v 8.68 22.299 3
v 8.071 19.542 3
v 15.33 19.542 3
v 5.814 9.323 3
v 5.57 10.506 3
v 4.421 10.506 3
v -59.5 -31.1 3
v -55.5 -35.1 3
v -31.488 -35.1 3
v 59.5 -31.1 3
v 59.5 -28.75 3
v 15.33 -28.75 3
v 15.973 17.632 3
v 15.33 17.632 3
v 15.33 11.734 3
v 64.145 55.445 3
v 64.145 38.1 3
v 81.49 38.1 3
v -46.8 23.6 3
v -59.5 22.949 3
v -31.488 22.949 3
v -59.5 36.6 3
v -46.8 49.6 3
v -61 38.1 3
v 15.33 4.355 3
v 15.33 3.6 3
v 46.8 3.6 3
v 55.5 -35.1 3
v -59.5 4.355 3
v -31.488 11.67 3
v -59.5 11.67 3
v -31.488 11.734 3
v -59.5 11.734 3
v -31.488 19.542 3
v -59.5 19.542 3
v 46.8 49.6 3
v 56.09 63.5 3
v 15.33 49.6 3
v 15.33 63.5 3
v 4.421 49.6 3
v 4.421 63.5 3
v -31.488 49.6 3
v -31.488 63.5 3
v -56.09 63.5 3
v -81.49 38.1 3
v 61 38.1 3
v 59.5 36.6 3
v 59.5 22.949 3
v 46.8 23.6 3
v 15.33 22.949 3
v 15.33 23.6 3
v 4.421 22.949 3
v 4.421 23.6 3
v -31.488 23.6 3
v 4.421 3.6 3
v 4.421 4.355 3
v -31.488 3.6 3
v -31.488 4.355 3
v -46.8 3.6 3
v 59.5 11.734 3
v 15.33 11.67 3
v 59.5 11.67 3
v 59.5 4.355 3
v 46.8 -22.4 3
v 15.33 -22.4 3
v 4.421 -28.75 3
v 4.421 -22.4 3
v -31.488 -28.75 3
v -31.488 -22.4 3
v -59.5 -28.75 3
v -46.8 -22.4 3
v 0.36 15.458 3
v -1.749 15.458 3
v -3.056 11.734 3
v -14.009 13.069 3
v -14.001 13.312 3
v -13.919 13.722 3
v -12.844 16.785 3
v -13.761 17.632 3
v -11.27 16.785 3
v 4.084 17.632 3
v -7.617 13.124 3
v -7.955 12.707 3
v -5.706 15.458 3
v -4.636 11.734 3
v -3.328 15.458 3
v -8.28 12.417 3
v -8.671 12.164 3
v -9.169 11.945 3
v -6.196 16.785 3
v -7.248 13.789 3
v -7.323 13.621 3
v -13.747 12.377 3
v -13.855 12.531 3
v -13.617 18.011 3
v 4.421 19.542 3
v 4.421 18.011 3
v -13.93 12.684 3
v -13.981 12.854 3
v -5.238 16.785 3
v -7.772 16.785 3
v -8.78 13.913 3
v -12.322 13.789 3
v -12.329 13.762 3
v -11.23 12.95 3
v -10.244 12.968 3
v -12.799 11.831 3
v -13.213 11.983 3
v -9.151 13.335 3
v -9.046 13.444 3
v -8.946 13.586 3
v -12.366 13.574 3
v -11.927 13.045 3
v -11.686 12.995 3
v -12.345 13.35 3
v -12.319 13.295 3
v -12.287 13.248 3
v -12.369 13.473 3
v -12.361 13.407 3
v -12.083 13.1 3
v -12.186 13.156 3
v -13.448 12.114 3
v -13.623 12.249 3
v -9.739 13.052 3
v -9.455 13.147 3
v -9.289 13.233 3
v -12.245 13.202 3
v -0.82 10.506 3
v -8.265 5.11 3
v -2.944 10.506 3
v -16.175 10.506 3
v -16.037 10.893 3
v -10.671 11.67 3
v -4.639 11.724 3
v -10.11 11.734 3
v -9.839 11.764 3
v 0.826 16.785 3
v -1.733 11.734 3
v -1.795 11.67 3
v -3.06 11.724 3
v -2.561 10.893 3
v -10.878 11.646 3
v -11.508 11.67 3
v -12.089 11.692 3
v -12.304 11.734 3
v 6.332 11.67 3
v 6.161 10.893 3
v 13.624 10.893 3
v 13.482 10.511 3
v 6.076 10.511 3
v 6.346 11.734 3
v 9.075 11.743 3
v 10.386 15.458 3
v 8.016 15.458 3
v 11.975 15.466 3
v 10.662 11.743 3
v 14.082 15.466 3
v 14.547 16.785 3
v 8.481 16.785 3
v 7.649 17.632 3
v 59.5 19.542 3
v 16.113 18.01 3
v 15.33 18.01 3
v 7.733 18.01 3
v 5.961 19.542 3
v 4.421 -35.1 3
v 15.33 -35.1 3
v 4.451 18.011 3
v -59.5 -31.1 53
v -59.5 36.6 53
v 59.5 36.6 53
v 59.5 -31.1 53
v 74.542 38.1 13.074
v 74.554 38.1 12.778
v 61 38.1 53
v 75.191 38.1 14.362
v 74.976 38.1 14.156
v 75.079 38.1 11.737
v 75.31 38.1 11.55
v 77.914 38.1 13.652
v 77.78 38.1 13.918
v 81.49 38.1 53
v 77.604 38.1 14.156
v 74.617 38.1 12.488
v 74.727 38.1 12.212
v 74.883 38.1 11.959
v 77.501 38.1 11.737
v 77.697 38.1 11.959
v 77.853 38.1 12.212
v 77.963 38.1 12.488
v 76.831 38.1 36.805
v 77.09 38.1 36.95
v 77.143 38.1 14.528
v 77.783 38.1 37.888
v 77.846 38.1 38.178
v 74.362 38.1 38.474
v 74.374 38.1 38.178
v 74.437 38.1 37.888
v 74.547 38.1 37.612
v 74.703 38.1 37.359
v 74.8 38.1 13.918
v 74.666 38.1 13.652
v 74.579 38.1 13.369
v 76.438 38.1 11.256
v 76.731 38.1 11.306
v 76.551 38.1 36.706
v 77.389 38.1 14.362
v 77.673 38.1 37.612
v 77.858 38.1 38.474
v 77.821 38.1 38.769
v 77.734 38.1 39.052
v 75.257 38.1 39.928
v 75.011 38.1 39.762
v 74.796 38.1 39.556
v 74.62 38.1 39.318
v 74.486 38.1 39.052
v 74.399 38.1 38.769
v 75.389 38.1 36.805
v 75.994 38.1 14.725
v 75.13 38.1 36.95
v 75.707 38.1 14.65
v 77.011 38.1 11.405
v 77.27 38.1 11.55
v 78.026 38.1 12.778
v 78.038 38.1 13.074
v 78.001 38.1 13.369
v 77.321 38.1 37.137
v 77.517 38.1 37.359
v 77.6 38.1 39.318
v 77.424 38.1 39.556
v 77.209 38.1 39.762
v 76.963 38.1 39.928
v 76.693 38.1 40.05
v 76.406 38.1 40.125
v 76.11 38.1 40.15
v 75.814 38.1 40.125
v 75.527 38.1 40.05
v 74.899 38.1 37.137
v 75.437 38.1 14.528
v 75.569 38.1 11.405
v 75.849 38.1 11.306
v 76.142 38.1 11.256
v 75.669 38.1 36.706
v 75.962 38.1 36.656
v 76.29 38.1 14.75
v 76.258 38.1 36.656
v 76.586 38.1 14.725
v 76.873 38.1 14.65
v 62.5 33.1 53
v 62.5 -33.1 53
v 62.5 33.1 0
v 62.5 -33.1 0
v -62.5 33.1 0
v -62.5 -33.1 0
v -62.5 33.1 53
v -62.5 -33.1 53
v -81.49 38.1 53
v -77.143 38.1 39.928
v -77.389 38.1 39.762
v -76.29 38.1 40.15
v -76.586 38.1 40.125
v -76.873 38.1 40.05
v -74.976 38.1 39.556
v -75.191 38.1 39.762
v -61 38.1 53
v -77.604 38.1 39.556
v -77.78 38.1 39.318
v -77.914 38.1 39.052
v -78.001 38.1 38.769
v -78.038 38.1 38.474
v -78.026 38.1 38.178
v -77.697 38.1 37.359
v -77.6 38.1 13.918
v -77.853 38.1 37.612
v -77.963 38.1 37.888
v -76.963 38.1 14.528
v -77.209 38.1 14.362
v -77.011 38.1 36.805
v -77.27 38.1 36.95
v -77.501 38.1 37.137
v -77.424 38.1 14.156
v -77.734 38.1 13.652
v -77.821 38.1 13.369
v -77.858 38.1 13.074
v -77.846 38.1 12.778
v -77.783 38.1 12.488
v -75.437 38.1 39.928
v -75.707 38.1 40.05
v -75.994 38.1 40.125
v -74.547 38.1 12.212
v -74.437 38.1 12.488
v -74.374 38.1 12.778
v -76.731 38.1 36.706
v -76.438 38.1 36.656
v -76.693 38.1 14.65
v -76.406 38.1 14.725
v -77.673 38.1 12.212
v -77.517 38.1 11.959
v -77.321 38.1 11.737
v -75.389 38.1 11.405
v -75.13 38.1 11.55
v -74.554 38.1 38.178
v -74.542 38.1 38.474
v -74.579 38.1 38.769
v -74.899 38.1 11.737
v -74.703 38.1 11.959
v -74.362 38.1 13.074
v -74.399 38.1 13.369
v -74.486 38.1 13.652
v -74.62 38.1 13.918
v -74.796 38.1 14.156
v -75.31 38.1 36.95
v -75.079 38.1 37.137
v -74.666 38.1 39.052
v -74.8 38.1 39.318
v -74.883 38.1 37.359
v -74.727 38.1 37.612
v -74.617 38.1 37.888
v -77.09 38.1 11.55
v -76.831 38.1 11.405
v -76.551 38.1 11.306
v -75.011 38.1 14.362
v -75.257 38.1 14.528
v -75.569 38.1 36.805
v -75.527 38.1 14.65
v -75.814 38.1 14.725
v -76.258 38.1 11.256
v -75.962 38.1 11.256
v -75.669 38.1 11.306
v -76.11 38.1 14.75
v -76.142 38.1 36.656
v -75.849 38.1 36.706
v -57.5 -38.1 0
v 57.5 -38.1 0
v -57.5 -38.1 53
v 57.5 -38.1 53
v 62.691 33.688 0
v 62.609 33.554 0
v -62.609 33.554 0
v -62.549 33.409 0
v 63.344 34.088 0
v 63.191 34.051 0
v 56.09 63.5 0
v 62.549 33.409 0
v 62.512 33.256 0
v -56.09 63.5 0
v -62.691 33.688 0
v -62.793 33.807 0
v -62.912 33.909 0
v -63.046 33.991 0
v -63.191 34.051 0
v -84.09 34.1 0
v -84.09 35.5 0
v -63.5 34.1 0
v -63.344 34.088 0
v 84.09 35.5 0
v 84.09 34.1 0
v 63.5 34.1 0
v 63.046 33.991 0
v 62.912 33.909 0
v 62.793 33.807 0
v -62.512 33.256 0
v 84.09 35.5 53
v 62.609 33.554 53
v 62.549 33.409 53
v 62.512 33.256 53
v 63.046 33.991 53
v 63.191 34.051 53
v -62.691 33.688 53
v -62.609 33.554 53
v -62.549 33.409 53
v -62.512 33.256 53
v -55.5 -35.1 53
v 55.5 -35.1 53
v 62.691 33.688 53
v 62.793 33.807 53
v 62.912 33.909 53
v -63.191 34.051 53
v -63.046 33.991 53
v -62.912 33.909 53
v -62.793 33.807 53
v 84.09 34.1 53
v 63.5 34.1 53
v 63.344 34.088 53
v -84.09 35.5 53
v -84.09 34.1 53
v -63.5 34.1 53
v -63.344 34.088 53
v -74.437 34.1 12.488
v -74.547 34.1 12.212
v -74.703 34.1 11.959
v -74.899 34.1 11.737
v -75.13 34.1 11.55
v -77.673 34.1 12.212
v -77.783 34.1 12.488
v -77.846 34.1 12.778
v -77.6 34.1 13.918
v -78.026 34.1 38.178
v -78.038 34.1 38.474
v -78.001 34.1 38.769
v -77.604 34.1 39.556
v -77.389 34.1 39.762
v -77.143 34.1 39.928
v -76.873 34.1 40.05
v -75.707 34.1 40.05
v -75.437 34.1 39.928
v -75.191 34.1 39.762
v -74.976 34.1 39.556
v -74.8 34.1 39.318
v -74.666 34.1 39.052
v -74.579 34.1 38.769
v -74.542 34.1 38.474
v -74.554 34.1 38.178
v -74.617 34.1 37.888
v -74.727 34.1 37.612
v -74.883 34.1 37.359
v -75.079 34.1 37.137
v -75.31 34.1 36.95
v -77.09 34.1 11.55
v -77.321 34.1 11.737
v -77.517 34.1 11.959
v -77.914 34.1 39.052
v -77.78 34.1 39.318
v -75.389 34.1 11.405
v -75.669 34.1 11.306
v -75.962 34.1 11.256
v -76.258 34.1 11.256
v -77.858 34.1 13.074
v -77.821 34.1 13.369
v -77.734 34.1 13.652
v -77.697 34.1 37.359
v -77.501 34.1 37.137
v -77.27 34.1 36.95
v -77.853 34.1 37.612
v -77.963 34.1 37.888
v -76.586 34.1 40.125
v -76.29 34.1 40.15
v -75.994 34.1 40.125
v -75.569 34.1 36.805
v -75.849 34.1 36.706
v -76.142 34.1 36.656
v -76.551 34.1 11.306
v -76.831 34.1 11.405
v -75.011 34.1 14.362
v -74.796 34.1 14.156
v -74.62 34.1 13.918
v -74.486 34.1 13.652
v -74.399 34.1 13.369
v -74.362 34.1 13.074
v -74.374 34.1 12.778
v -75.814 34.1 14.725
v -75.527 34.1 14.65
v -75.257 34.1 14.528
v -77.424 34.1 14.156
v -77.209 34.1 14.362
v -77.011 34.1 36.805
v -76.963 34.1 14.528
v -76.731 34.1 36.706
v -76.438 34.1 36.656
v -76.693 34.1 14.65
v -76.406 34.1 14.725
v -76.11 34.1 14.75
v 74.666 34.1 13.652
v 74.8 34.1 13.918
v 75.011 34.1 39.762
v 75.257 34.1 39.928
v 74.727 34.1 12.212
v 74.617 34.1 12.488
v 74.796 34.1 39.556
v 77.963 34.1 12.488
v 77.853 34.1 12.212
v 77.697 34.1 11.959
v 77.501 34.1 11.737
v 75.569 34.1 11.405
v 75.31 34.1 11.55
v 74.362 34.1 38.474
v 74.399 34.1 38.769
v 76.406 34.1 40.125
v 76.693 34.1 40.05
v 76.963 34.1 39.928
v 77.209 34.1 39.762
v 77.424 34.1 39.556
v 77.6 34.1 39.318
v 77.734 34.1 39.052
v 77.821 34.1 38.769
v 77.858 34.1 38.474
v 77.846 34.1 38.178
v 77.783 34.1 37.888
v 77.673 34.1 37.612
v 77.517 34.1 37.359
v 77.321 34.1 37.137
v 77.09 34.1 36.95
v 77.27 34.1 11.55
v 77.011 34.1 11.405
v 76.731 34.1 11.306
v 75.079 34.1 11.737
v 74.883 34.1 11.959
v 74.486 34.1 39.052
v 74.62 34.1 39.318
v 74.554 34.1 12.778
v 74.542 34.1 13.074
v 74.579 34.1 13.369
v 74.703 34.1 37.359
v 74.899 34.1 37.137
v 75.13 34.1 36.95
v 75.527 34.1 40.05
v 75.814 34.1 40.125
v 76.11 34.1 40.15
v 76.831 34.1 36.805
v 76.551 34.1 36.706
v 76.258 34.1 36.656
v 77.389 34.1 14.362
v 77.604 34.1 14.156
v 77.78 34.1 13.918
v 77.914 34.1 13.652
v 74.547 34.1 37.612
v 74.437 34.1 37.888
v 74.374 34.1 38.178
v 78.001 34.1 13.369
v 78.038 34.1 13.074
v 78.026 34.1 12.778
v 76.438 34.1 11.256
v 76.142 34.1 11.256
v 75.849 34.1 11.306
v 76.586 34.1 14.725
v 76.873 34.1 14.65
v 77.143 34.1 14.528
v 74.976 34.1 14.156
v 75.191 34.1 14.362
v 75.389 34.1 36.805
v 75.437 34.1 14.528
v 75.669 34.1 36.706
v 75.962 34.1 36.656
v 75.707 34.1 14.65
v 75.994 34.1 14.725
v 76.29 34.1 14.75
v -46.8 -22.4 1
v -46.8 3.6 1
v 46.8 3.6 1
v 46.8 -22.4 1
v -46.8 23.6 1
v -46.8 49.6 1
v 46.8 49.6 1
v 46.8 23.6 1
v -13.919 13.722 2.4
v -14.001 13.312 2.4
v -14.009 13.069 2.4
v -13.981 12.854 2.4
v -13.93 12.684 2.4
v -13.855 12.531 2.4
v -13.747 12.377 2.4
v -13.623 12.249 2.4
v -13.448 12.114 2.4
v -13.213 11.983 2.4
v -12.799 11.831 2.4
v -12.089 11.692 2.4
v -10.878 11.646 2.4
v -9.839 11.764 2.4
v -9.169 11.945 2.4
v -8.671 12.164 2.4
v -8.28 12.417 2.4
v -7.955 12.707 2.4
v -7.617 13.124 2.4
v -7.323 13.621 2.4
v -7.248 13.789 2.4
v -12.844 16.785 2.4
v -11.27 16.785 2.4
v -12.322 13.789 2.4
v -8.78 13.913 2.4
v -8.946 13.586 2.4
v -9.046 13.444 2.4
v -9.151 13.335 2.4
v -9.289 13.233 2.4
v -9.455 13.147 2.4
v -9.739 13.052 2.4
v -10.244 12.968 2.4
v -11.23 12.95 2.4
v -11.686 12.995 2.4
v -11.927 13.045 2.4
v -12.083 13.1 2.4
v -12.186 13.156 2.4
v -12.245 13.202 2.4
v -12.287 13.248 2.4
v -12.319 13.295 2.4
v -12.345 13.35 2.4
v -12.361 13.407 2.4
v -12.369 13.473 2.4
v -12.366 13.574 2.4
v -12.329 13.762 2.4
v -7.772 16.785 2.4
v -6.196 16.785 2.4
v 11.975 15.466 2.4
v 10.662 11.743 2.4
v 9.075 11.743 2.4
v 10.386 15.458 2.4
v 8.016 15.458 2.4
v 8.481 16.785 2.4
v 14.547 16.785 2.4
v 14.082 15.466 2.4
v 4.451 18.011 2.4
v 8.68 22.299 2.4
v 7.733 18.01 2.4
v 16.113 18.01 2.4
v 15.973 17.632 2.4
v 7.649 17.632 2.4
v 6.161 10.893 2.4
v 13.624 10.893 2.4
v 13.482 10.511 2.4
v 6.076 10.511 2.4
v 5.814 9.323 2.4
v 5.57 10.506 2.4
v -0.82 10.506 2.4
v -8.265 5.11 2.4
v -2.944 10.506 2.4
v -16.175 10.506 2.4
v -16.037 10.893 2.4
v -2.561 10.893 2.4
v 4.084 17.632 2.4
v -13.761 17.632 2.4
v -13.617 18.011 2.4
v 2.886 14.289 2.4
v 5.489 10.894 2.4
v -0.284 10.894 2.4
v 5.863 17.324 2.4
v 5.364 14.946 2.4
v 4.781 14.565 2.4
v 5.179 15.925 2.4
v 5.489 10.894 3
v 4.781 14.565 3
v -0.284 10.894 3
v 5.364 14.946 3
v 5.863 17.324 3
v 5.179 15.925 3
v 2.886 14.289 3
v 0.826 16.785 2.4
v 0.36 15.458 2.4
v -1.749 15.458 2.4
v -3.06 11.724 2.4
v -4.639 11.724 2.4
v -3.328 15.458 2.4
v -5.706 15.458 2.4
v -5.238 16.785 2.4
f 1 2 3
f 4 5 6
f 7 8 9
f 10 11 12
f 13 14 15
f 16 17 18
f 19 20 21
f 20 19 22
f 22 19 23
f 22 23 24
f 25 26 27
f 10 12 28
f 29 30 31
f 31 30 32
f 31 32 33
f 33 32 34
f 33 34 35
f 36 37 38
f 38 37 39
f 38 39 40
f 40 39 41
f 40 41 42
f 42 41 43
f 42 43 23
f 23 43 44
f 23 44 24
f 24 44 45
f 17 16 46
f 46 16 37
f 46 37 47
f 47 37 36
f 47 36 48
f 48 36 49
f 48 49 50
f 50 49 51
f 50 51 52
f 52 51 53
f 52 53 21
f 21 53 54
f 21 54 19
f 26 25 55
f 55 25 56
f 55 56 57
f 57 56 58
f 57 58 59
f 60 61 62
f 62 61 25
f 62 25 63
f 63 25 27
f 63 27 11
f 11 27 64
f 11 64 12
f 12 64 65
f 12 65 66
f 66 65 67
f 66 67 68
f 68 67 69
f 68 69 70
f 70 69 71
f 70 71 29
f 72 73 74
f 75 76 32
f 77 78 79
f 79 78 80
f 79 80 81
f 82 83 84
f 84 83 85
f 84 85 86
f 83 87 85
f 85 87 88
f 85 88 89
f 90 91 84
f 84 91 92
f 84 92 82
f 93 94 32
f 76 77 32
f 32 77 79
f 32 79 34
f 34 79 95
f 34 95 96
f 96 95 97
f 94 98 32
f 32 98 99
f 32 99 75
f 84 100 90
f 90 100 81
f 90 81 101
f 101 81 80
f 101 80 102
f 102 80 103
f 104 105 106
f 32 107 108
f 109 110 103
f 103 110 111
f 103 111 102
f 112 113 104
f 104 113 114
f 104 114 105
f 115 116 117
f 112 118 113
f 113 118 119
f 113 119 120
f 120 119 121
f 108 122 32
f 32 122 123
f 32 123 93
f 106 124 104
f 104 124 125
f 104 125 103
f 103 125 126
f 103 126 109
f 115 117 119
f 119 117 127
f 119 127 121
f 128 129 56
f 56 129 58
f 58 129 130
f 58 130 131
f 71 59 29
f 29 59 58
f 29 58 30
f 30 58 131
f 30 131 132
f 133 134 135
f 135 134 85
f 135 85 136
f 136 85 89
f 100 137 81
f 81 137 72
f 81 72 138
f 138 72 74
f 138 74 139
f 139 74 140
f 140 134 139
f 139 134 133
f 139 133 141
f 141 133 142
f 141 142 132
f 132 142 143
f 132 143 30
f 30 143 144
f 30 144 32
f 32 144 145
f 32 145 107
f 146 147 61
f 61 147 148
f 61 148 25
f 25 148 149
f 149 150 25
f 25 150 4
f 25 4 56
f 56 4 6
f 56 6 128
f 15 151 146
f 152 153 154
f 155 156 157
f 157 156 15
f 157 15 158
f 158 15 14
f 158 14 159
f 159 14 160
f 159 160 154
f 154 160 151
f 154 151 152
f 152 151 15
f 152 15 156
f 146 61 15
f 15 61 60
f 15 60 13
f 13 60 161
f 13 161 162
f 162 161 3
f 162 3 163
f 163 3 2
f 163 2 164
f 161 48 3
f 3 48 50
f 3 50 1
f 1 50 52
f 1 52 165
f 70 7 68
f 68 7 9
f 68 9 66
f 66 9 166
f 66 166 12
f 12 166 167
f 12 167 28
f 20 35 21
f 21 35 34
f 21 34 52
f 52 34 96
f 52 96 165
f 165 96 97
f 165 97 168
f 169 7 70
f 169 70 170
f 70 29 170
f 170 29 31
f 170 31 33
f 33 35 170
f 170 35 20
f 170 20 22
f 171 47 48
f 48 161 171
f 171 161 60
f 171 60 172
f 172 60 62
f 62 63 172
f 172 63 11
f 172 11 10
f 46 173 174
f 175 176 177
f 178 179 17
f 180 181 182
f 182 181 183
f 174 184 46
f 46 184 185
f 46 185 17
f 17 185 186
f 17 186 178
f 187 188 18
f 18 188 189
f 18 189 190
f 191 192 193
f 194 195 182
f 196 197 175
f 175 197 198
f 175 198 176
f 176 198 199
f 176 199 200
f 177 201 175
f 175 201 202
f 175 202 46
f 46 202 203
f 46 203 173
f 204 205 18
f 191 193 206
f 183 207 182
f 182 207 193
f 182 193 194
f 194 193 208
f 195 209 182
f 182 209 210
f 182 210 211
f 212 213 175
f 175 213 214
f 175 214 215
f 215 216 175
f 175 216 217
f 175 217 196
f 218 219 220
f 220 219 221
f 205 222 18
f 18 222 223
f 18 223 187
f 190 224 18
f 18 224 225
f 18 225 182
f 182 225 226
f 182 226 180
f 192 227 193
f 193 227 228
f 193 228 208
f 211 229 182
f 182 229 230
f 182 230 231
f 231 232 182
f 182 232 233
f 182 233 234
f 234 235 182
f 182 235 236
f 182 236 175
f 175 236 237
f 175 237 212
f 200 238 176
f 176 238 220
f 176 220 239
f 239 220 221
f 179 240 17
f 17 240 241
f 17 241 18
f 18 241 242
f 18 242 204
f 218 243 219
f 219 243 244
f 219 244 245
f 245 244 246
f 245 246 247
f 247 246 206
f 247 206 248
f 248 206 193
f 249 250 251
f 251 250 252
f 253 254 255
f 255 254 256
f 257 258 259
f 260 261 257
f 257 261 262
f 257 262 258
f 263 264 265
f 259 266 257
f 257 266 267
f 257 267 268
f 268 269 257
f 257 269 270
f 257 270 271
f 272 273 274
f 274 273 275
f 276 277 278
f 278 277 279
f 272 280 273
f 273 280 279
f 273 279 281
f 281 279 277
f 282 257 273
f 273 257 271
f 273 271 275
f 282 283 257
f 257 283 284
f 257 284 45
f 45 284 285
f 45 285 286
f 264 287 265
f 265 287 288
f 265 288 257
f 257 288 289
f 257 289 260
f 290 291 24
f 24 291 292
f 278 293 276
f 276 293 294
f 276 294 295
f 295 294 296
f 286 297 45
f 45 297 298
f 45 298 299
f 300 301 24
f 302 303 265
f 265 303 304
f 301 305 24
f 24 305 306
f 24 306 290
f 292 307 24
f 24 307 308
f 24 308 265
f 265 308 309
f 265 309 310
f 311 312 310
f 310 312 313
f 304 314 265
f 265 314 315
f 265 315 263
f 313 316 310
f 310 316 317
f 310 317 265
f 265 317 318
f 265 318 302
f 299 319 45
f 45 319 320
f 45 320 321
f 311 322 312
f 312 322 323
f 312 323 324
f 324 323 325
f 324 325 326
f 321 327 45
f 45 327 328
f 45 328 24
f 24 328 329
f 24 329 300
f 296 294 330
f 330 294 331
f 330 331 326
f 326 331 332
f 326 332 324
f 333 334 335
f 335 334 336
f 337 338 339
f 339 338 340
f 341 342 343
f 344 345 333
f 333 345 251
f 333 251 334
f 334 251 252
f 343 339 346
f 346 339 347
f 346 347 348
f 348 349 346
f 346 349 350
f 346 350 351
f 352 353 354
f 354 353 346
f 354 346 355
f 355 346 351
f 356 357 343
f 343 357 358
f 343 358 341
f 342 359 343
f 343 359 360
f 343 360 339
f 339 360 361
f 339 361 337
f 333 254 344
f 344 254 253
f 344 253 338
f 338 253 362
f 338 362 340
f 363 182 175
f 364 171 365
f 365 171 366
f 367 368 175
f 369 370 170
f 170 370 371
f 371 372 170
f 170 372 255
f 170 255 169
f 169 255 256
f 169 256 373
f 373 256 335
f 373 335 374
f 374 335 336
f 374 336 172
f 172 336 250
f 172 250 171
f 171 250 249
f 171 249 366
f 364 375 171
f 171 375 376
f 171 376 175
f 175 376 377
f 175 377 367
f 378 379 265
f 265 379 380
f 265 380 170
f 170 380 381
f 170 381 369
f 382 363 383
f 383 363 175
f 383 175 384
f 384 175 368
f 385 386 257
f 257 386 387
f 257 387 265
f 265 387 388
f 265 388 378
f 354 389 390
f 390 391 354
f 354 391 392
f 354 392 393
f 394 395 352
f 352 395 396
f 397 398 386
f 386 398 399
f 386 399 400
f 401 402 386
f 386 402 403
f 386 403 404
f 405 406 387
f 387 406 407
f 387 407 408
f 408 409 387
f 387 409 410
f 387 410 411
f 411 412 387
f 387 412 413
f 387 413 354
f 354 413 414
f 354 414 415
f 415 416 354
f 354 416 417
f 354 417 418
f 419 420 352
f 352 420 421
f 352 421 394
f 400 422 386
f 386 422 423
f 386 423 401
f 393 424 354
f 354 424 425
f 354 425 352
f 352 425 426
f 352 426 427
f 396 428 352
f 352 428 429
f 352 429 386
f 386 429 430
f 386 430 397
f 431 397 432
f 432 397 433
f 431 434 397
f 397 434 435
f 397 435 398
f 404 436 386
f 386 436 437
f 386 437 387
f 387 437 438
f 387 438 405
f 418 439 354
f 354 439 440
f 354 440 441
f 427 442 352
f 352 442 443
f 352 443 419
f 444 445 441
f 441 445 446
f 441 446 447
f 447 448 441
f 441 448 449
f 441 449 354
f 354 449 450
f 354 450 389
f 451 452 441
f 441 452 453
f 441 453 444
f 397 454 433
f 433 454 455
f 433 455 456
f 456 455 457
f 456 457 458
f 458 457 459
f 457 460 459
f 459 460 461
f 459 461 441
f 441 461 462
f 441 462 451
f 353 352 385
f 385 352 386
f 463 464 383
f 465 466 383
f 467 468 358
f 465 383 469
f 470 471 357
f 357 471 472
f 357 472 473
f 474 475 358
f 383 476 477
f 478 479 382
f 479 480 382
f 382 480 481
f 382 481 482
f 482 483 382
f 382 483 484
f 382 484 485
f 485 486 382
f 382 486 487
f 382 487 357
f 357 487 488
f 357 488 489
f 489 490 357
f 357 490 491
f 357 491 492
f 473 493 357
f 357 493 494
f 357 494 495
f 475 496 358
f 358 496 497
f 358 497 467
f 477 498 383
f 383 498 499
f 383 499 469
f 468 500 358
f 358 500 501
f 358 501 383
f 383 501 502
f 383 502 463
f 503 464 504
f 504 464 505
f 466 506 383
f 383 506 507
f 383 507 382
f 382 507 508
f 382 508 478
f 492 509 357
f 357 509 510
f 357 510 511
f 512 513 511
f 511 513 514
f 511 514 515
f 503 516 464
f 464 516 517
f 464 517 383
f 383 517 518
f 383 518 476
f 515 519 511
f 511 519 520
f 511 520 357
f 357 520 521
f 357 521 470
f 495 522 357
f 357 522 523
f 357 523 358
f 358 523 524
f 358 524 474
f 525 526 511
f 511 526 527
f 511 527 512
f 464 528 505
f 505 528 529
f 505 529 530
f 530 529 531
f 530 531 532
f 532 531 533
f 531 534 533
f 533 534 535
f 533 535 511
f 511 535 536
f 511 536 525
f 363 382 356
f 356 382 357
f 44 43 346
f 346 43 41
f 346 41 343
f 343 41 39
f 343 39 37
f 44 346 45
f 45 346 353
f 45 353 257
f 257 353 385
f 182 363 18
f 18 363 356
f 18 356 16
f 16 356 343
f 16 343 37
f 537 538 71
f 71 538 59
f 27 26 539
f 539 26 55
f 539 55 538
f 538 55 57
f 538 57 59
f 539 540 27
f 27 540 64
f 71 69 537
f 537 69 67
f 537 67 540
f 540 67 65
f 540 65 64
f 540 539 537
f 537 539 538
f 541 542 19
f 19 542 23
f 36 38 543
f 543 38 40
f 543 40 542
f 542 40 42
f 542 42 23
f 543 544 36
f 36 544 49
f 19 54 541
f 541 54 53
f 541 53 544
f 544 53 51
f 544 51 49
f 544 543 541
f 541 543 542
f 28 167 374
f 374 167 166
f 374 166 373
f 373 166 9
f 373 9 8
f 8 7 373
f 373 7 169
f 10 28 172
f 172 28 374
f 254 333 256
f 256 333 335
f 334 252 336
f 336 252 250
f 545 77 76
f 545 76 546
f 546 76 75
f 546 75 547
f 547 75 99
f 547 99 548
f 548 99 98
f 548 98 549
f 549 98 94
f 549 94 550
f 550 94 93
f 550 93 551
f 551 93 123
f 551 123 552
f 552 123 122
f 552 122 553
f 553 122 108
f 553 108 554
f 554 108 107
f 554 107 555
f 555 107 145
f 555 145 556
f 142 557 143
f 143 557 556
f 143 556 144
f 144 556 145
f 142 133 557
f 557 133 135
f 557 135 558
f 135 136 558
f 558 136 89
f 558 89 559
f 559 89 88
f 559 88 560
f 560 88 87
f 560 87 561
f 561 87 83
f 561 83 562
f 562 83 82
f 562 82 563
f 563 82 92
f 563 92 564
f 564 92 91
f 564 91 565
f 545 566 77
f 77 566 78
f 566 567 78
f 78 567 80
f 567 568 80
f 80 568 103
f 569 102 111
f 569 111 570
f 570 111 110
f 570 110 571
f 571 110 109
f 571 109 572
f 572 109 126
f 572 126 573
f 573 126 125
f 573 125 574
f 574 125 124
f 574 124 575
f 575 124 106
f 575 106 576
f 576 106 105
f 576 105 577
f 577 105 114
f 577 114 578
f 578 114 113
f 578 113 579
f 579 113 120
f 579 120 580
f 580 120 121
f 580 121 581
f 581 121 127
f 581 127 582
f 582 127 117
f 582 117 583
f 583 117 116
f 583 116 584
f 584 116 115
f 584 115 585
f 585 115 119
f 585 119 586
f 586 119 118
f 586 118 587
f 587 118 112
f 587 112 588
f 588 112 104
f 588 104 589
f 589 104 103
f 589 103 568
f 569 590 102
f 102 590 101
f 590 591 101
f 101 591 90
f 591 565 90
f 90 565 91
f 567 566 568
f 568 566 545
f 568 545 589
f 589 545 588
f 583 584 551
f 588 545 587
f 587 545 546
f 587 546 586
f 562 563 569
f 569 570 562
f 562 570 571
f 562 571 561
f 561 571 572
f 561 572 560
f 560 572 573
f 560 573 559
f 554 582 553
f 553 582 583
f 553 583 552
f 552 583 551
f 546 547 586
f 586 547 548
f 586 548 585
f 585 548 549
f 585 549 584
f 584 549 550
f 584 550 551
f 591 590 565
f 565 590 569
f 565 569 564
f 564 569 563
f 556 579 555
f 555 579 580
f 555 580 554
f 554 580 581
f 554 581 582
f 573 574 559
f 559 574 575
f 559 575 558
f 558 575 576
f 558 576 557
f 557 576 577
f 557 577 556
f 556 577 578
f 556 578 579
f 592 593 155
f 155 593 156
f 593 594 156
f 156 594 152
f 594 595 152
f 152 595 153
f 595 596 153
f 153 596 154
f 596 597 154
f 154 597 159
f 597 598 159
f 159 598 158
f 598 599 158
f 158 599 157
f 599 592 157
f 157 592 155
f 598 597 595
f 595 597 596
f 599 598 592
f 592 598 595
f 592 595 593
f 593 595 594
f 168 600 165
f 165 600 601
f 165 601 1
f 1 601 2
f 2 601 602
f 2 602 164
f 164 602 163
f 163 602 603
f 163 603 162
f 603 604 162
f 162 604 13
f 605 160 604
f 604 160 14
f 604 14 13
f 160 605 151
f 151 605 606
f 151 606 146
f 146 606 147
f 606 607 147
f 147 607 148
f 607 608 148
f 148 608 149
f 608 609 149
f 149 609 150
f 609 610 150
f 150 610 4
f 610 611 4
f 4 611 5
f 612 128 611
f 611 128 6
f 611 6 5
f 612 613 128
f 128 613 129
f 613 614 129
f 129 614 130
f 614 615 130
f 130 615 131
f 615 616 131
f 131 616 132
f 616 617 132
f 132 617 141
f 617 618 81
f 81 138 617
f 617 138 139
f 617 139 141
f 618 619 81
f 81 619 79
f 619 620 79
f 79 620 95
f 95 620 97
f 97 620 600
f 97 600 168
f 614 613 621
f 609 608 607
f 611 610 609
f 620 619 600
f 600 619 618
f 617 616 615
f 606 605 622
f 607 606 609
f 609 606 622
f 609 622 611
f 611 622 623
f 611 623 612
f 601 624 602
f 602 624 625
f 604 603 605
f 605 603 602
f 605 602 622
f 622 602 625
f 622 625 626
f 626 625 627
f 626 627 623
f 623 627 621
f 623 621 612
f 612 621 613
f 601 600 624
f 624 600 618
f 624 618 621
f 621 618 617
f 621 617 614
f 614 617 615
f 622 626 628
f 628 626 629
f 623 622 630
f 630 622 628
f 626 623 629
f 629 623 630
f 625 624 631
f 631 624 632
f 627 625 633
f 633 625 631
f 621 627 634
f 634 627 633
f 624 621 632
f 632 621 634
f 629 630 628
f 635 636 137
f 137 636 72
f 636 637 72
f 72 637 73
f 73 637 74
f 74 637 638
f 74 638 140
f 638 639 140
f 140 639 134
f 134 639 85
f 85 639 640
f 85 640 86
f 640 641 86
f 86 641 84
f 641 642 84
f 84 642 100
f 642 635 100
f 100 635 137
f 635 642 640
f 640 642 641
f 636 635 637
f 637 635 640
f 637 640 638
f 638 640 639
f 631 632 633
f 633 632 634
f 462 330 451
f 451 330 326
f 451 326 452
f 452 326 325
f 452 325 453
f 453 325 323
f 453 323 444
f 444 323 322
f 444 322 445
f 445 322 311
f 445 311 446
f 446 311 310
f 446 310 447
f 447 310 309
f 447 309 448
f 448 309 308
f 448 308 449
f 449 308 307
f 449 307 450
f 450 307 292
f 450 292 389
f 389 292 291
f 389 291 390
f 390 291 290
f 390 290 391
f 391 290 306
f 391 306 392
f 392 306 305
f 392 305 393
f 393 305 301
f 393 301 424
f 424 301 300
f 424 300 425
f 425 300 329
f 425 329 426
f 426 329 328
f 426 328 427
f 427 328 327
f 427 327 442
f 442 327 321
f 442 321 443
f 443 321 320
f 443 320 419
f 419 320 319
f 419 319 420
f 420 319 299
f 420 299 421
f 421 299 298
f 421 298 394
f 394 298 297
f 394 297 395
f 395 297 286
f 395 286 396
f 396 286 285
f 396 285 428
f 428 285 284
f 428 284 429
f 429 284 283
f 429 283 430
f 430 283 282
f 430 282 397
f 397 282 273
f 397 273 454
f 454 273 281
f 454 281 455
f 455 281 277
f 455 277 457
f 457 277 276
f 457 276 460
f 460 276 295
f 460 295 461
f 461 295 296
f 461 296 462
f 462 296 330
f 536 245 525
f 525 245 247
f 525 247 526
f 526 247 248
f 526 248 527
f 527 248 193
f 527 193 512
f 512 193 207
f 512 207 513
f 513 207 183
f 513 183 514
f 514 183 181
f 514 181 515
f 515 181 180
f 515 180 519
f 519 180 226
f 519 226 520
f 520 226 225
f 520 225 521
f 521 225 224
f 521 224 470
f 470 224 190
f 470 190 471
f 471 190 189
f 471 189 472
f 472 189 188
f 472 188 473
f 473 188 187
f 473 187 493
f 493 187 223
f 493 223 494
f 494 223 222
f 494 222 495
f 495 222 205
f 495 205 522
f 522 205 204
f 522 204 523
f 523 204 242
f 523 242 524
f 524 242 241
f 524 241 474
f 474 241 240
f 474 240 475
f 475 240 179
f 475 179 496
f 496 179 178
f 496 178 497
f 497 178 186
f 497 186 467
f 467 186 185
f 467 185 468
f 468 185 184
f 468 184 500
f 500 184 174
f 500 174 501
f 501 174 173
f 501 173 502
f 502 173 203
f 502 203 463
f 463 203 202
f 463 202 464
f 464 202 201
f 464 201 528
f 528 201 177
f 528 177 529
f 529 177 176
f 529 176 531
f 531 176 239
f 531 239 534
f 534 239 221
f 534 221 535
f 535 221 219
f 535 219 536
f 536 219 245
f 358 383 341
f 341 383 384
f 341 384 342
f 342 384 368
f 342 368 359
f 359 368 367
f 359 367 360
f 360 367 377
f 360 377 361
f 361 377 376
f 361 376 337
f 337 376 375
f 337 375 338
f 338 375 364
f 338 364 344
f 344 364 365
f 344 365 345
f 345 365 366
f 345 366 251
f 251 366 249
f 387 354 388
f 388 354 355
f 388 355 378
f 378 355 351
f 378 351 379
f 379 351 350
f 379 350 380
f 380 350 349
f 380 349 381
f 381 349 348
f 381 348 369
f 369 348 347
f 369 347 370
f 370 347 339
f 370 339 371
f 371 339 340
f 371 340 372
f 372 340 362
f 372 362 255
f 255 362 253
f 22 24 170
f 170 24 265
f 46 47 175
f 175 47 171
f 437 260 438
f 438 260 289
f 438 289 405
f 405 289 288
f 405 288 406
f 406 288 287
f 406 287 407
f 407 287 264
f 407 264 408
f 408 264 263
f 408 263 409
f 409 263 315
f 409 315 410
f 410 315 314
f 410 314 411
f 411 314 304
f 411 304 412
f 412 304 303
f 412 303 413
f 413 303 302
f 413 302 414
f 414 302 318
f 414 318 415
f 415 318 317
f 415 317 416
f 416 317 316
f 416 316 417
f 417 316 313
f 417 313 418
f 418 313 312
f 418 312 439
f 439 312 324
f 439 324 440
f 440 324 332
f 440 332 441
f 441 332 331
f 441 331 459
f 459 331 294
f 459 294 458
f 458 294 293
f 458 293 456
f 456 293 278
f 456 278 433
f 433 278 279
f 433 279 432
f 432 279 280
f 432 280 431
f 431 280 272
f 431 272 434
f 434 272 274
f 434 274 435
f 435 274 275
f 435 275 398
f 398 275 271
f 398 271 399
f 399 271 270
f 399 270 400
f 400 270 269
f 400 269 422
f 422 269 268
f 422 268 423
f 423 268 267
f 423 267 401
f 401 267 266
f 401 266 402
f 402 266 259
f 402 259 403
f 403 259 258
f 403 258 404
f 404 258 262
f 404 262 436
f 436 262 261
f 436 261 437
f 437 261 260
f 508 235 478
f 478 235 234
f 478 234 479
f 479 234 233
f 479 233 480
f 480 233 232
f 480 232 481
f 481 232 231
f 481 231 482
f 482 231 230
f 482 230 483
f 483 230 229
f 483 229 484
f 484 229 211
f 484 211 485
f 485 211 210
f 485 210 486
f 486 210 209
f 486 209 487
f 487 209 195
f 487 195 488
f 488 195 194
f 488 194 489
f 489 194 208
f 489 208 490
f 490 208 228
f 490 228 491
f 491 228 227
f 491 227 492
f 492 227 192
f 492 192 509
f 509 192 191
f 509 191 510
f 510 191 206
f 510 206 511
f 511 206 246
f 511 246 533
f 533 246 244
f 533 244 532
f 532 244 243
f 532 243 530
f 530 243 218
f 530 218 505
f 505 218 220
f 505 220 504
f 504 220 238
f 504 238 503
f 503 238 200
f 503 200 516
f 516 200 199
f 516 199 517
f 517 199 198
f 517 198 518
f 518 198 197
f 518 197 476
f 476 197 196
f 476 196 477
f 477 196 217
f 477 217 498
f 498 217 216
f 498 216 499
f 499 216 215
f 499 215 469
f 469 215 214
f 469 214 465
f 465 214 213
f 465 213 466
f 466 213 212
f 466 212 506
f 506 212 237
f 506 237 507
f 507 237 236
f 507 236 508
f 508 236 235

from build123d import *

# Parameters (mm, degrees)
SKETCH1_W           = 125
SKETCH1_H           = 76.2
BOSS_EXTRUDE1_DEPTH = 3
SKETCH2_W           = 3
SKETCH2_H           = 76.2
BOSS_EXTRUDE2_DEPTH = 50
SKETCH4_W           = 53
SKETCH4_H           = 4
BOSS_EXTRUDE4_DEPTH = 21.59
SKETCH5_W           = 53
SKETCH5_H           = 4
BOSS_EXTRUDE5_DEPTH = 21.59
SKETCH6_W           = 168.18
SKETCH6_H           = 25.4
BOSS_EXTRUDE6_DEPTH = 3
CHAMFER1_SIZE       = 28
SKETCH7_W           = 93.6
SKETCH7_H           = 26
CUT_EXTRUDE1_DEPTH  = 2
SKETCH9_W           = 119
SKETCH9_H           = 3
BOSS_EXTRUDE7_DEPTH = 50
CHAMFER2_SIZE       = 4
CHAMFER3_SIZE       = 5
CUT_EXTRUDE2_START  = -0.6
CUT_EXTRUDE2_DEPTH  = 0.6
SKETCH11_R          = 1.75
CUT_EXTRUDE3_DEPTH  = 5
FILLET1_R           = 1
CHAMFER4_SIZE       = 1.5
SKETCH13_R          = 1.75
CUT_EXTRUDE4_DEPTH  = 10


# Read off the part's stored shape, not the designer's step: Cut-Extrude2
with BuildPart() as part:
    # Sketch1 → Boss-Extrude1 (new body)
    with BuildSketch(Plane.XY):
        Rectangle(SKETCH1_W, SKETCH1_H)
    extrude(amount=BOSS_EXTRUDE1_DEPTH)

    # Sketch2 → Boss-Extrude2 (add)
    with BuildSketch(Plane.XY.offset(3)):
        with Locations((-61, 0)):
            Rectangle(SKETCH2_W, SKETCH2_H)
        with Locations((61, 0)):
            Rectangle(SKETCH2_W, SKETCH2_H)
    extrude(amount=BOSS_EXTRUDE2_DEPTH)

    # Sketch4 → Boss-Extrude4 (add)
    with BuildSketch(Plane.ZY.offset(62.5)):
        with Locations((26.5, 36.1)):
            Rectangle(SKETCH4_W, SKETCH4_H)
    extrude(amount=BOSS_EXTRUDE4_DEPTH)

    # Sketch5 → Boss-Extrude5 (add)
    with BuildSketch(Plane(origin=(62.5, 0, 0), x_dir=(0, 0, -1), z_dir=(1, 0, 0))):
        with Locations((-26.5, 36.1)):
            Rectangle(SKETCH5_W, SKETCH5_H)
    extrude(amount=BOSS_EXTRUDE5_DEPTH)

    # Sketch6 → Boss-Extrude6 (add)
    with BuildSketch(Plane(origin=(0, 0, 0), x_dir=(-1, 0, 0), z_dir=(0, 0, -1))):
        with Locations((0, 50.8)):
            Rectangle(SKETCH6_W, SKETCH6_H)
    extrude(amount=-BOSS_EXTRUDE6_DEPTH)

    # Chamfer1
    chamfer1_edges = [part.edges().sort_by_distance(p)[0] for p in [
        (-84.09, 63.5, 1.5),
        (84.09, 63.5, 1.5),
    ]]
    chamfer(chamfer1_edges, length=CHAMFER1_SIZE)

    # Sketch7 → Cut-Extrude1 (cut)
    with BuildSketch(Plane.XY.offset(3)):
        with Locations((0, -9.4)):
            Rectangle(SKETCH7_W, SKETCH7_H)
        with Locations((0, 36.6)):
            Rectangle(SKETCH7_W, SKETCH7_H)
    extrude(amount=-CUT_EXTRUDE1_DEPTH, mode=Mode.SUBTRACT)

    # Sketch9 → Boss-Extrude7 (add)
    with BuildSketch(Plane.XY.offset(3)):
        with Locations((0, -36.6)):
            Rectangle(SKETCH9_W, SKETCH9_H)
    extrude(amount=BOSS_EXTRUDE7_DEPTH)

    # Chamfer2
    chamfer2_edges = [part.edges().sort_by_distance(p)[0] for p in [
        (-59.5, -35.1, 28),
        (59.5, -35.1, 28),
    ]]
    chamfer(chamfer2_edges, length=CHAMFER2_SIZE)

    # Chamfer3
    chamfer3_edges = [part.edges().sort_by_distance(p)[0] for p in [
        (62.5, -38.1, 26.5),
        (-62.5, -38.1, 26.5),
    ]]
    chamfer(chamfer3_edges, length=CHAMFER3_SIZE)

    # Cut-Extrude2 outline → Cut-Extrude2 (cut)
    # profile 1 of 4: a face of its own
    with BuildSketch(Plane.XY.offset(3).offset(CUT_EXTRUDE2_START)):
        with BuildLine():
            Line((-12.843793417, 16.784775128), (-13.918894641, 13.722312614))
            add(Edge.make_bspline(
                [(-13.918894641, 13.722312614), (-13.950745906, 13.608646354), (-13.97919001, 13.483685694), (-14.011317489, 13.235305925), (-14.01541758, 13.110841548), (-13.989547543, 12.867284383), (-13.959604678, 12.747961158), (-13.857332343, 12.519974586), (-13.78490702, 12.411398187), (-13.592313629, 12.212018271), (-13.472083062, 12.121314997), (-13.184369222, 11.962818623), (-13.016909084, 11.895027419), (-12.454211206, 11.728033285), (-11.997806272, 11.664794493), (-11.025815686, 11.62704002), (-10.511530183, 11.651603075), (-9.78258436, 11.770518687), (-9.546683753, 11.824200176), (-9.102156978, 11.962599668), (-8.89364967, 12.047436893), (-8.514064046, 12.246658938), (-8.343153207, 12.361026326), (-8.04132547, 12.611058926), (-7.910418089, 12.746448479), (-7.679883041, 13.0275306), (-7.579636344, 13.172799488), (-7.44297026, 13.39668043), (-7.39971151, 13.472431032), (-7.318663078, 13.627460279), (-7.280772846, 13.706786212), (-7.248185858, 13.788667895)],
                knots=[0, 0, 0, 0, 0.0625, 0.0625, 0.125, 0.125, 0.1875, 0.1875, 0.25, 0.25, 0.3125, 0.3125, 0.375, 0.375, 0.5, 0.5, 0.625, 0.625, 0.6875, 0.6875, 0.75, 0.75, 0.8125, 0.8125, 0.875, 0.875, 0.9375, 0.9375, 0.96875, 0.96875, 1, 1, 1, 1], degree=3))
            Line((-7.248185858, 13.788667895), (-6.196379448, 16.784775128))
            Line((-6.196379448, 16.784775128), (-7.771512854, 16.784775171))
            Line((-7.771512854, 16.784775171), (-8.779640442, 13.913087848))
            add(Edge.make_bspline(
                [(-8.779640442, 13.913087848), (-8.801212863, 13.867686768), (-8.828630281, 13.811426743), (-8.890437912, 13.684919137), (-8.925723343, 13.615289873), (-9.014867696, 13.477778317), (-9.069034752, 13.410065742), (-9.20356673, 13.286811644), (-9.283951715, 13.231246188), (-9.470687062, 13.136081945), (-9.576947425, 13.096402347), (-9.809000897, 13.032201026), (-9.934689567, 13.00760449), (-10.326953956, 12.952228061), (-10.607716868, 12.939250309), (-11.138236784, 12.940792557), (-11.387946526, 12.95495502), (-11.815776289, 13.010911905), (-11.994686961, 13.05312605), (-12.19022456, 13.154353945), (-12.243244201, 13.194586759), (-12.322270156, 13.289978248), (-12.348136332, 13.345299657), (-12.373130151, 13.46826163), (-12.371956966, 13.5361378), (-12.35254935, 13.67085438), (-12.333771283, 13.737944141), (-12.322165603, 13.788667937)],
                knots=[0, 0, 0, 0, 0.0625, 0.0625, 0.125, 0.125, 0.1875, 0.1875, 0.25, 0.25, 0.3125, 0.3125, 0.375, 0.375, 0.5, 0.5, 0.625, 0.625, 0.75, 0.75, 0.8125, 0.8125, 0.875, 0.875, 0.9375, 0.9375, 1, 1, 1, 1], degree=3))
            Line((-12.322165603, 13.788667937), (-11.2703582, 16.784775128))
            Line((-11.2703582, 16.784775128), (-12.843793417, 16.784775128))
        make_face()
    # profile 2 of 4: a face of its own
    with BuildSketch(Plane.XY.offset(3).offset(CUT_EXTRUDE2_START)):
        Polygon((14.082145905, 15.466432145), (14.547318434, 16.784775128), (8.481425261, 16.784775128), (8.015662645, 15.45803385), (10.386127447, 15.45803385), (9.075451111, 11.743439605), (10.661733364, 11.743439605), (11.975372051, 15.466432145), align=None)
    # profile 3 of 4: a face of its own
    with BuildSketch(Plane.XY.offset(3).offset(CUT_EXTRUDE2_START)):
        Polygon((0.359928822, 15.45803385), (0.825593089, 16.784775128), (-5.237786258, 16.784775128), (-5.705919648, 15.45803385), (-3.328357423, 15.45803385), (-4.639000977, 11.723834147), (-3.059652234, 11.723834147), (-1.74900868, 15.45803385), align=None)
    # profile 4 of 4: a face of its own
    with BuildSketch(Plane.XY.offset(3).offset(CUT_EXTRUDE2_START)):
        Polygon((7.732615088, 18.009820452), (8.67993853, 22.298690548), (4.451236342, 18.010625114), (-13.617285872, 18.010625114), (-13.760696138, 17.631800344), (4.083976363, 17.631800344), (-2.561139847, 10.89339914), (-16.036862666, 10.89339914), (-16.175076152, 10.505618026), (-2.943552817, 10.505618026), (-8.264964605, 5.10950355), (-0.819885517, 10.505618026), (5.569839691, 10.505618026), (5.813932632, 9.32327198), (6.07620201, 10.510665049), (13.482070183, 10.510665049), (13.624063348, 10.89339914), (6.160742258, 10.89339914), (7.649117922, 17.631800344), (15.972876762, 17.631800344), (16.113123511, 18.009820452), align=None)
        Polygon((-0.283933962, 10.894070437), (4.780674194, 14.564845582), (5.489286994, 10.894070437), align=None, mode=Mode.SUBTRACT)
        Polygon((5.863139247, 17.323666682), (5.364033793, 14.945937564), (5.179256414, 15.9244998), (2.885975157, 14.289472868), align=None, mode=Mode.SUBTRACT)
    extrude(amount=CUT_EXTRUDE2_DEPTH, mode=Mode.SUBTRACT)

    # Sketch11 → Cut-Extrude3 (cut)
    with BuildSketch(Plane(origin=(0, 38.1, 0), x_dir=(1, 0, 0), z_dir=(0, 1, 0))):
        with Locations(Location((-76.11, -13, 0), (0, 0, 270))):
            Circle(SKETCH11_R)
        with Locations(Location((76.29, -13, 0), (0, 0, 270))):
            Circle(SKETCH11_R)
    extrude(amount=-CUT_EXTRUDE3_DEPTH, mode=Mode.SUBTRACT)

    # Fillet1
    fillet1_edges = [part.edges().sort_by_distance(p)[0] for p in [
        (-62.5, 34.1, 26.5),
        (62.5, 34.1, 26.5),
    ]]
    fillet(fillet1_edges, radius=FILLET1_R)

    # Chamfer4
    chamfer4_edges = [part.edges().sort_by_distance(p)[0] for p in [
        (-59.5, 38.1, 28),
        (59.5, 38.1, 28),
    ]]
    chamfer(chamfer4_edges, length=CHAMFER4_SIZE)

    # Sketch13 → Cut-Extrude4 (cut)
    with BuildSketch(Plane(origin=(0, 38.1, 0), x_dir=(1, 0, 0), z_dir=(0, 1, 0))):
        with Locations(Location((-76.29, -38.4, 0), (0, 0, 270))):
            Circle(SKETCH13_R)
        with Locations(Location((76.11, -38.4, 0), (0, 0, 270))):
            Circle(SKETCH13_R)
    extrude(amount=-CUT_EXTRUDE4_DEPTH, mode=Mode.SUBTRACT)


solid = part.part
